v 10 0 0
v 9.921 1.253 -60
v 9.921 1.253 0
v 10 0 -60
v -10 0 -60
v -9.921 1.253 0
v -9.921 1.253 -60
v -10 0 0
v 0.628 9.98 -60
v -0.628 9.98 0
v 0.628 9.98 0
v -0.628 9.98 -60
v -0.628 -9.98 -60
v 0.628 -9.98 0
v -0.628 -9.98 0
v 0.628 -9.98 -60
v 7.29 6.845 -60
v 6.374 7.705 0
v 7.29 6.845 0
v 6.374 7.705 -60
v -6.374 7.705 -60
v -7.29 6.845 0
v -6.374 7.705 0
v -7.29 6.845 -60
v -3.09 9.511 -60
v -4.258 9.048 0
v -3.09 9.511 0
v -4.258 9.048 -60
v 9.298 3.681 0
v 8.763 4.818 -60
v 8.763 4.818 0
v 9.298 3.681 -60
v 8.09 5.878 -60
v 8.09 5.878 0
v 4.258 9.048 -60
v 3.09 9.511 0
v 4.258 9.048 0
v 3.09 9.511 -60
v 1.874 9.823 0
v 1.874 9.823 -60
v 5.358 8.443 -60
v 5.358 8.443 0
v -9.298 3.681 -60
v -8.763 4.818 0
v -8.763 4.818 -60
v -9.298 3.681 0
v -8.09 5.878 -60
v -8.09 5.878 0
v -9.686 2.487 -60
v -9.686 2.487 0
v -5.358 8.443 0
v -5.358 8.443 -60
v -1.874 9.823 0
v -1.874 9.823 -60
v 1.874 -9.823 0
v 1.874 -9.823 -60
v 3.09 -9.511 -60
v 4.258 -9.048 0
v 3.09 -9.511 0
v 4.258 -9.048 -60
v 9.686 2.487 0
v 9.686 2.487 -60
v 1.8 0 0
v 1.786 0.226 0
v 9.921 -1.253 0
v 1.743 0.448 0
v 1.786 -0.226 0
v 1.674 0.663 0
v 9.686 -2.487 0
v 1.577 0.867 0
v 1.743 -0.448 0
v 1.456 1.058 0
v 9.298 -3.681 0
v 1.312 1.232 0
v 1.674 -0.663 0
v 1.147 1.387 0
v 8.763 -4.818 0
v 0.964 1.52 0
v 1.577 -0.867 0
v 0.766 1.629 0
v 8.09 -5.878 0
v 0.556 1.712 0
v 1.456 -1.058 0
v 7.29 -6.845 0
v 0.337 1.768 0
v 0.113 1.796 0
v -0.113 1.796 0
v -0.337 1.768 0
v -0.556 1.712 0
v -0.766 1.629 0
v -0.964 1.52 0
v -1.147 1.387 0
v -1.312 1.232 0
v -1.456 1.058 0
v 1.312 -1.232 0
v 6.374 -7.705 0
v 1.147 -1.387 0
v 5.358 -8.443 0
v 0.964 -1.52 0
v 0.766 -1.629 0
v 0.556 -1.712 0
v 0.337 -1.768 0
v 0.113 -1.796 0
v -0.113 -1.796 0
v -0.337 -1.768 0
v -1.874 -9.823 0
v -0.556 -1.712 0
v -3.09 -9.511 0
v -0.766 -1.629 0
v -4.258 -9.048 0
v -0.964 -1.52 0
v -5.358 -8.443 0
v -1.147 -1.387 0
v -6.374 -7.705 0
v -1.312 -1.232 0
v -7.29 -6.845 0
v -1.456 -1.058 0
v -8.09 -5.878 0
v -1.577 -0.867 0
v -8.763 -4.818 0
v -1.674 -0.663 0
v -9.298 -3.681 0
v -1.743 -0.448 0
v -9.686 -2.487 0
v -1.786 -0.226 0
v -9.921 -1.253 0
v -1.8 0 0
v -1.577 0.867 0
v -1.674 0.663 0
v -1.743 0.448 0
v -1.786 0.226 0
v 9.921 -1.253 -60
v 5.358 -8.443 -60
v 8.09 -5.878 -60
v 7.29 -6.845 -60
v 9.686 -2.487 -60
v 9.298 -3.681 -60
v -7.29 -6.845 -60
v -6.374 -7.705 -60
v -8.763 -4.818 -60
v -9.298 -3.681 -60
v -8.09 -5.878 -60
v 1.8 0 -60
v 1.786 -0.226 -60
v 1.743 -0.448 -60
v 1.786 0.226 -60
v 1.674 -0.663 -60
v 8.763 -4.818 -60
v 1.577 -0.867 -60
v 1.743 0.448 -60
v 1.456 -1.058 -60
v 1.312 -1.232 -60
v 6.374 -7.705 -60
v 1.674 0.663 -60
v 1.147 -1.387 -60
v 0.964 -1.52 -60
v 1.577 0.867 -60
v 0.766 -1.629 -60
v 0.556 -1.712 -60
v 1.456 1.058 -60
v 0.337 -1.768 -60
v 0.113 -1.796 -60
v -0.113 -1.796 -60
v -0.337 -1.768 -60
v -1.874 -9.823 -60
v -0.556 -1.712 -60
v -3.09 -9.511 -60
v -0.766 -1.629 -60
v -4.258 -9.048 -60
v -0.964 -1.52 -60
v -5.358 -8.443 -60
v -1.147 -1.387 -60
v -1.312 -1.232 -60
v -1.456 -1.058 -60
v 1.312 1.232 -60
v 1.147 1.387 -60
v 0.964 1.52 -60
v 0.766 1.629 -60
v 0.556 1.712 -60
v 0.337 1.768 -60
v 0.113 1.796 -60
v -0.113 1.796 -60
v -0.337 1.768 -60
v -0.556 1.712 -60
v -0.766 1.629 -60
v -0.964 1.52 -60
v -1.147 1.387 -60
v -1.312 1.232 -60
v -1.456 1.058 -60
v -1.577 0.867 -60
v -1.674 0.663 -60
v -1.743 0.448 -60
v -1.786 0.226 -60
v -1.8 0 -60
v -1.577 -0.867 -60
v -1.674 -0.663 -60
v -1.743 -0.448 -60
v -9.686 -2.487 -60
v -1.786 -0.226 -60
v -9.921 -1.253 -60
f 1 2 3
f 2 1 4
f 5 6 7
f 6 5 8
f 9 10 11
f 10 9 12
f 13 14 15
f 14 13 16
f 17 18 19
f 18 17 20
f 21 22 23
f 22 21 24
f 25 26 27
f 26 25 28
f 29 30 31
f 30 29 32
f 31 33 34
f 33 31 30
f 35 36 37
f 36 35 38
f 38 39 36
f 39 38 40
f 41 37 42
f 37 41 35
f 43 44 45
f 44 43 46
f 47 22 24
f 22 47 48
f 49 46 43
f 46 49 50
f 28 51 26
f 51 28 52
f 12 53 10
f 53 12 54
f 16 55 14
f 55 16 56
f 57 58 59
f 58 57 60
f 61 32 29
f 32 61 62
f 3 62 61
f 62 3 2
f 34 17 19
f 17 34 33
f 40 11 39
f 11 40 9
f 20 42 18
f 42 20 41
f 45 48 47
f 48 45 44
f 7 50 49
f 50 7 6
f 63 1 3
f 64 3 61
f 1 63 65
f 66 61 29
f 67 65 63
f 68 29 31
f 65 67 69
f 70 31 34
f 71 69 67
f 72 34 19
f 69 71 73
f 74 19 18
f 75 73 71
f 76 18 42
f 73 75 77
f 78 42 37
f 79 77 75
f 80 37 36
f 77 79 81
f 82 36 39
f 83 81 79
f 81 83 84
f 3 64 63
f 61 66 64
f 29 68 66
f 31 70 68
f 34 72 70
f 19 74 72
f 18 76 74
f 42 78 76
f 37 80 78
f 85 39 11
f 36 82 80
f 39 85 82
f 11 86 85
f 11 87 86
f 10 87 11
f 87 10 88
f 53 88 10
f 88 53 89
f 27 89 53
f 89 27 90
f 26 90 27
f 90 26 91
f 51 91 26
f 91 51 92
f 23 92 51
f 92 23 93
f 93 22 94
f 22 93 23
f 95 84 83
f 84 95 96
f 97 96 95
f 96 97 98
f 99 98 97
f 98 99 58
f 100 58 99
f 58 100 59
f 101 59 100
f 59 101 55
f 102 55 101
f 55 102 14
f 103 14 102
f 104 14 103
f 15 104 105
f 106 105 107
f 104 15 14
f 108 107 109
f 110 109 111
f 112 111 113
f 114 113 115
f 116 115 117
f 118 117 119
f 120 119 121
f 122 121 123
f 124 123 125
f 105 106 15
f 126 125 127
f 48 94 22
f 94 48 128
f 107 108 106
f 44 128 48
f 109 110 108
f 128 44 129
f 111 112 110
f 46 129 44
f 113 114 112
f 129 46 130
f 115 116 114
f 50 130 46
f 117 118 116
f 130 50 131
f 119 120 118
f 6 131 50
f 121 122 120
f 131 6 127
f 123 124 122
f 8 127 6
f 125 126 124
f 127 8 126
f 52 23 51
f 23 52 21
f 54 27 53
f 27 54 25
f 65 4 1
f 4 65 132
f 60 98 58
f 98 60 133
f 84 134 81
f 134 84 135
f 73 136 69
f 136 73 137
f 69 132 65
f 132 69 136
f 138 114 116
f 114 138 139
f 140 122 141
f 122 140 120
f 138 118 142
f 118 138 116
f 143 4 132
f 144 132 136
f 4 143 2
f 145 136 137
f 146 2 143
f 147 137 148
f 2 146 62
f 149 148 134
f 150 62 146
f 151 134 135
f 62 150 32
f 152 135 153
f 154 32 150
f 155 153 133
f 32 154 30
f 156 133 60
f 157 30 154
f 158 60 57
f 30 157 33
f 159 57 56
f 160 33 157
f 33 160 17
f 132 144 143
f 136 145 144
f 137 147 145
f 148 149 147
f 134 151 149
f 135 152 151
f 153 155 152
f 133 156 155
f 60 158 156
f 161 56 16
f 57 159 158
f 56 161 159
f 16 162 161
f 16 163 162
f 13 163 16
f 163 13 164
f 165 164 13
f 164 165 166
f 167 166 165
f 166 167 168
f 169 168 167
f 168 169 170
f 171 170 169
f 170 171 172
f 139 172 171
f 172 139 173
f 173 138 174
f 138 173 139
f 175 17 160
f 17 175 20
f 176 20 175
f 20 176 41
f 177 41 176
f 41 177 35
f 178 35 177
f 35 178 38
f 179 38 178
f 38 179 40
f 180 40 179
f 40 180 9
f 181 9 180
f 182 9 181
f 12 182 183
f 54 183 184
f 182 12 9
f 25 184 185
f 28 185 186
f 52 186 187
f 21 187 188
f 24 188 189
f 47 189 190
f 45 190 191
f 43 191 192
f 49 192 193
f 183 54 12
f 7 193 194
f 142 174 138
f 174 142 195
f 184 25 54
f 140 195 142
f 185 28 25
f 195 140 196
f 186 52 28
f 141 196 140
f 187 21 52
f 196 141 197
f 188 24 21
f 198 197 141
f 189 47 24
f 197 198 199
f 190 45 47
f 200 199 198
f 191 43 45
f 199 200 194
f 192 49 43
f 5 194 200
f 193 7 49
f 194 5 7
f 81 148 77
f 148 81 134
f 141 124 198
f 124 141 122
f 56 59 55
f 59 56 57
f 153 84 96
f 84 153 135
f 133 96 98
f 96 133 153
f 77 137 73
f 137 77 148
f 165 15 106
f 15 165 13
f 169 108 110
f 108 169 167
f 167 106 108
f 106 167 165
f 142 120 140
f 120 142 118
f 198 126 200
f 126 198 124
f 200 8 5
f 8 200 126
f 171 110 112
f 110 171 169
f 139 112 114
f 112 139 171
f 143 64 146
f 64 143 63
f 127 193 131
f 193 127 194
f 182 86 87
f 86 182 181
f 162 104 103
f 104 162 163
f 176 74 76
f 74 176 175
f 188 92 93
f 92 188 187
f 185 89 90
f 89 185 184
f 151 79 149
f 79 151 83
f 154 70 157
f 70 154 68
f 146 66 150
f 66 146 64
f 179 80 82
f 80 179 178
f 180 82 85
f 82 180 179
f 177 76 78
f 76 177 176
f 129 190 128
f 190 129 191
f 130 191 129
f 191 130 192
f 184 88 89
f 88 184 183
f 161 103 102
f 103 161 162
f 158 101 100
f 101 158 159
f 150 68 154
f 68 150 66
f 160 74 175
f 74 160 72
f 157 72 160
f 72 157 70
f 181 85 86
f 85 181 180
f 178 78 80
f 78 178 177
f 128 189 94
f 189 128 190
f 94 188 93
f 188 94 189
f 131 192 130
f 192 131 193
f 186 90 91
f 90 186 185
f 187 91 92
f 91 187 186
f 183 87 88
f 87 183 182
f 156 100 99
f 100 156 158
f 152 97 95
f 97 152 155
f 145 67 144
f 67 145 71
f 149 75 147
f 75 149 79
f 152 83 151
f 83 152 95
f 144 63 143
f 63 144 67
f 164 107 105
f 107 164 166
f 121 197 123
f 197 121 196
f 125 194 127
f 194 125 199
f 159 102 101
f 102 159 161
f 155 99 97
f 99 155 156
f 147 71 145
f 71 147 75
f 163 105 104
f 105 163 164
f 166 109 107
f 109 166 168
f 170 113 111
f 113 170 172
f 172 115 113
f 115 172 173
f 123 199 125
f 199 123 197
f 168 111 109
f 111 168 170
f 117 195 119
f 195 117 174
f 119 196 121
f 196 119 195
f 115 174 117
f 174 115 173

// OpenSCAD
$fn = 50;


difference() {
	union() {
		translate(v = [0, 0, -60.0000000000]) {
			cylinder(h = 60, r = 10.0000000000);
		}
		cylinder(h = 0, r = 19.0000000000);
	}
	union() {
		#translate(v = [0, 0, -60]) {
			cylinder(h = 60, r = 1.8000000000);
		}
	}
}
